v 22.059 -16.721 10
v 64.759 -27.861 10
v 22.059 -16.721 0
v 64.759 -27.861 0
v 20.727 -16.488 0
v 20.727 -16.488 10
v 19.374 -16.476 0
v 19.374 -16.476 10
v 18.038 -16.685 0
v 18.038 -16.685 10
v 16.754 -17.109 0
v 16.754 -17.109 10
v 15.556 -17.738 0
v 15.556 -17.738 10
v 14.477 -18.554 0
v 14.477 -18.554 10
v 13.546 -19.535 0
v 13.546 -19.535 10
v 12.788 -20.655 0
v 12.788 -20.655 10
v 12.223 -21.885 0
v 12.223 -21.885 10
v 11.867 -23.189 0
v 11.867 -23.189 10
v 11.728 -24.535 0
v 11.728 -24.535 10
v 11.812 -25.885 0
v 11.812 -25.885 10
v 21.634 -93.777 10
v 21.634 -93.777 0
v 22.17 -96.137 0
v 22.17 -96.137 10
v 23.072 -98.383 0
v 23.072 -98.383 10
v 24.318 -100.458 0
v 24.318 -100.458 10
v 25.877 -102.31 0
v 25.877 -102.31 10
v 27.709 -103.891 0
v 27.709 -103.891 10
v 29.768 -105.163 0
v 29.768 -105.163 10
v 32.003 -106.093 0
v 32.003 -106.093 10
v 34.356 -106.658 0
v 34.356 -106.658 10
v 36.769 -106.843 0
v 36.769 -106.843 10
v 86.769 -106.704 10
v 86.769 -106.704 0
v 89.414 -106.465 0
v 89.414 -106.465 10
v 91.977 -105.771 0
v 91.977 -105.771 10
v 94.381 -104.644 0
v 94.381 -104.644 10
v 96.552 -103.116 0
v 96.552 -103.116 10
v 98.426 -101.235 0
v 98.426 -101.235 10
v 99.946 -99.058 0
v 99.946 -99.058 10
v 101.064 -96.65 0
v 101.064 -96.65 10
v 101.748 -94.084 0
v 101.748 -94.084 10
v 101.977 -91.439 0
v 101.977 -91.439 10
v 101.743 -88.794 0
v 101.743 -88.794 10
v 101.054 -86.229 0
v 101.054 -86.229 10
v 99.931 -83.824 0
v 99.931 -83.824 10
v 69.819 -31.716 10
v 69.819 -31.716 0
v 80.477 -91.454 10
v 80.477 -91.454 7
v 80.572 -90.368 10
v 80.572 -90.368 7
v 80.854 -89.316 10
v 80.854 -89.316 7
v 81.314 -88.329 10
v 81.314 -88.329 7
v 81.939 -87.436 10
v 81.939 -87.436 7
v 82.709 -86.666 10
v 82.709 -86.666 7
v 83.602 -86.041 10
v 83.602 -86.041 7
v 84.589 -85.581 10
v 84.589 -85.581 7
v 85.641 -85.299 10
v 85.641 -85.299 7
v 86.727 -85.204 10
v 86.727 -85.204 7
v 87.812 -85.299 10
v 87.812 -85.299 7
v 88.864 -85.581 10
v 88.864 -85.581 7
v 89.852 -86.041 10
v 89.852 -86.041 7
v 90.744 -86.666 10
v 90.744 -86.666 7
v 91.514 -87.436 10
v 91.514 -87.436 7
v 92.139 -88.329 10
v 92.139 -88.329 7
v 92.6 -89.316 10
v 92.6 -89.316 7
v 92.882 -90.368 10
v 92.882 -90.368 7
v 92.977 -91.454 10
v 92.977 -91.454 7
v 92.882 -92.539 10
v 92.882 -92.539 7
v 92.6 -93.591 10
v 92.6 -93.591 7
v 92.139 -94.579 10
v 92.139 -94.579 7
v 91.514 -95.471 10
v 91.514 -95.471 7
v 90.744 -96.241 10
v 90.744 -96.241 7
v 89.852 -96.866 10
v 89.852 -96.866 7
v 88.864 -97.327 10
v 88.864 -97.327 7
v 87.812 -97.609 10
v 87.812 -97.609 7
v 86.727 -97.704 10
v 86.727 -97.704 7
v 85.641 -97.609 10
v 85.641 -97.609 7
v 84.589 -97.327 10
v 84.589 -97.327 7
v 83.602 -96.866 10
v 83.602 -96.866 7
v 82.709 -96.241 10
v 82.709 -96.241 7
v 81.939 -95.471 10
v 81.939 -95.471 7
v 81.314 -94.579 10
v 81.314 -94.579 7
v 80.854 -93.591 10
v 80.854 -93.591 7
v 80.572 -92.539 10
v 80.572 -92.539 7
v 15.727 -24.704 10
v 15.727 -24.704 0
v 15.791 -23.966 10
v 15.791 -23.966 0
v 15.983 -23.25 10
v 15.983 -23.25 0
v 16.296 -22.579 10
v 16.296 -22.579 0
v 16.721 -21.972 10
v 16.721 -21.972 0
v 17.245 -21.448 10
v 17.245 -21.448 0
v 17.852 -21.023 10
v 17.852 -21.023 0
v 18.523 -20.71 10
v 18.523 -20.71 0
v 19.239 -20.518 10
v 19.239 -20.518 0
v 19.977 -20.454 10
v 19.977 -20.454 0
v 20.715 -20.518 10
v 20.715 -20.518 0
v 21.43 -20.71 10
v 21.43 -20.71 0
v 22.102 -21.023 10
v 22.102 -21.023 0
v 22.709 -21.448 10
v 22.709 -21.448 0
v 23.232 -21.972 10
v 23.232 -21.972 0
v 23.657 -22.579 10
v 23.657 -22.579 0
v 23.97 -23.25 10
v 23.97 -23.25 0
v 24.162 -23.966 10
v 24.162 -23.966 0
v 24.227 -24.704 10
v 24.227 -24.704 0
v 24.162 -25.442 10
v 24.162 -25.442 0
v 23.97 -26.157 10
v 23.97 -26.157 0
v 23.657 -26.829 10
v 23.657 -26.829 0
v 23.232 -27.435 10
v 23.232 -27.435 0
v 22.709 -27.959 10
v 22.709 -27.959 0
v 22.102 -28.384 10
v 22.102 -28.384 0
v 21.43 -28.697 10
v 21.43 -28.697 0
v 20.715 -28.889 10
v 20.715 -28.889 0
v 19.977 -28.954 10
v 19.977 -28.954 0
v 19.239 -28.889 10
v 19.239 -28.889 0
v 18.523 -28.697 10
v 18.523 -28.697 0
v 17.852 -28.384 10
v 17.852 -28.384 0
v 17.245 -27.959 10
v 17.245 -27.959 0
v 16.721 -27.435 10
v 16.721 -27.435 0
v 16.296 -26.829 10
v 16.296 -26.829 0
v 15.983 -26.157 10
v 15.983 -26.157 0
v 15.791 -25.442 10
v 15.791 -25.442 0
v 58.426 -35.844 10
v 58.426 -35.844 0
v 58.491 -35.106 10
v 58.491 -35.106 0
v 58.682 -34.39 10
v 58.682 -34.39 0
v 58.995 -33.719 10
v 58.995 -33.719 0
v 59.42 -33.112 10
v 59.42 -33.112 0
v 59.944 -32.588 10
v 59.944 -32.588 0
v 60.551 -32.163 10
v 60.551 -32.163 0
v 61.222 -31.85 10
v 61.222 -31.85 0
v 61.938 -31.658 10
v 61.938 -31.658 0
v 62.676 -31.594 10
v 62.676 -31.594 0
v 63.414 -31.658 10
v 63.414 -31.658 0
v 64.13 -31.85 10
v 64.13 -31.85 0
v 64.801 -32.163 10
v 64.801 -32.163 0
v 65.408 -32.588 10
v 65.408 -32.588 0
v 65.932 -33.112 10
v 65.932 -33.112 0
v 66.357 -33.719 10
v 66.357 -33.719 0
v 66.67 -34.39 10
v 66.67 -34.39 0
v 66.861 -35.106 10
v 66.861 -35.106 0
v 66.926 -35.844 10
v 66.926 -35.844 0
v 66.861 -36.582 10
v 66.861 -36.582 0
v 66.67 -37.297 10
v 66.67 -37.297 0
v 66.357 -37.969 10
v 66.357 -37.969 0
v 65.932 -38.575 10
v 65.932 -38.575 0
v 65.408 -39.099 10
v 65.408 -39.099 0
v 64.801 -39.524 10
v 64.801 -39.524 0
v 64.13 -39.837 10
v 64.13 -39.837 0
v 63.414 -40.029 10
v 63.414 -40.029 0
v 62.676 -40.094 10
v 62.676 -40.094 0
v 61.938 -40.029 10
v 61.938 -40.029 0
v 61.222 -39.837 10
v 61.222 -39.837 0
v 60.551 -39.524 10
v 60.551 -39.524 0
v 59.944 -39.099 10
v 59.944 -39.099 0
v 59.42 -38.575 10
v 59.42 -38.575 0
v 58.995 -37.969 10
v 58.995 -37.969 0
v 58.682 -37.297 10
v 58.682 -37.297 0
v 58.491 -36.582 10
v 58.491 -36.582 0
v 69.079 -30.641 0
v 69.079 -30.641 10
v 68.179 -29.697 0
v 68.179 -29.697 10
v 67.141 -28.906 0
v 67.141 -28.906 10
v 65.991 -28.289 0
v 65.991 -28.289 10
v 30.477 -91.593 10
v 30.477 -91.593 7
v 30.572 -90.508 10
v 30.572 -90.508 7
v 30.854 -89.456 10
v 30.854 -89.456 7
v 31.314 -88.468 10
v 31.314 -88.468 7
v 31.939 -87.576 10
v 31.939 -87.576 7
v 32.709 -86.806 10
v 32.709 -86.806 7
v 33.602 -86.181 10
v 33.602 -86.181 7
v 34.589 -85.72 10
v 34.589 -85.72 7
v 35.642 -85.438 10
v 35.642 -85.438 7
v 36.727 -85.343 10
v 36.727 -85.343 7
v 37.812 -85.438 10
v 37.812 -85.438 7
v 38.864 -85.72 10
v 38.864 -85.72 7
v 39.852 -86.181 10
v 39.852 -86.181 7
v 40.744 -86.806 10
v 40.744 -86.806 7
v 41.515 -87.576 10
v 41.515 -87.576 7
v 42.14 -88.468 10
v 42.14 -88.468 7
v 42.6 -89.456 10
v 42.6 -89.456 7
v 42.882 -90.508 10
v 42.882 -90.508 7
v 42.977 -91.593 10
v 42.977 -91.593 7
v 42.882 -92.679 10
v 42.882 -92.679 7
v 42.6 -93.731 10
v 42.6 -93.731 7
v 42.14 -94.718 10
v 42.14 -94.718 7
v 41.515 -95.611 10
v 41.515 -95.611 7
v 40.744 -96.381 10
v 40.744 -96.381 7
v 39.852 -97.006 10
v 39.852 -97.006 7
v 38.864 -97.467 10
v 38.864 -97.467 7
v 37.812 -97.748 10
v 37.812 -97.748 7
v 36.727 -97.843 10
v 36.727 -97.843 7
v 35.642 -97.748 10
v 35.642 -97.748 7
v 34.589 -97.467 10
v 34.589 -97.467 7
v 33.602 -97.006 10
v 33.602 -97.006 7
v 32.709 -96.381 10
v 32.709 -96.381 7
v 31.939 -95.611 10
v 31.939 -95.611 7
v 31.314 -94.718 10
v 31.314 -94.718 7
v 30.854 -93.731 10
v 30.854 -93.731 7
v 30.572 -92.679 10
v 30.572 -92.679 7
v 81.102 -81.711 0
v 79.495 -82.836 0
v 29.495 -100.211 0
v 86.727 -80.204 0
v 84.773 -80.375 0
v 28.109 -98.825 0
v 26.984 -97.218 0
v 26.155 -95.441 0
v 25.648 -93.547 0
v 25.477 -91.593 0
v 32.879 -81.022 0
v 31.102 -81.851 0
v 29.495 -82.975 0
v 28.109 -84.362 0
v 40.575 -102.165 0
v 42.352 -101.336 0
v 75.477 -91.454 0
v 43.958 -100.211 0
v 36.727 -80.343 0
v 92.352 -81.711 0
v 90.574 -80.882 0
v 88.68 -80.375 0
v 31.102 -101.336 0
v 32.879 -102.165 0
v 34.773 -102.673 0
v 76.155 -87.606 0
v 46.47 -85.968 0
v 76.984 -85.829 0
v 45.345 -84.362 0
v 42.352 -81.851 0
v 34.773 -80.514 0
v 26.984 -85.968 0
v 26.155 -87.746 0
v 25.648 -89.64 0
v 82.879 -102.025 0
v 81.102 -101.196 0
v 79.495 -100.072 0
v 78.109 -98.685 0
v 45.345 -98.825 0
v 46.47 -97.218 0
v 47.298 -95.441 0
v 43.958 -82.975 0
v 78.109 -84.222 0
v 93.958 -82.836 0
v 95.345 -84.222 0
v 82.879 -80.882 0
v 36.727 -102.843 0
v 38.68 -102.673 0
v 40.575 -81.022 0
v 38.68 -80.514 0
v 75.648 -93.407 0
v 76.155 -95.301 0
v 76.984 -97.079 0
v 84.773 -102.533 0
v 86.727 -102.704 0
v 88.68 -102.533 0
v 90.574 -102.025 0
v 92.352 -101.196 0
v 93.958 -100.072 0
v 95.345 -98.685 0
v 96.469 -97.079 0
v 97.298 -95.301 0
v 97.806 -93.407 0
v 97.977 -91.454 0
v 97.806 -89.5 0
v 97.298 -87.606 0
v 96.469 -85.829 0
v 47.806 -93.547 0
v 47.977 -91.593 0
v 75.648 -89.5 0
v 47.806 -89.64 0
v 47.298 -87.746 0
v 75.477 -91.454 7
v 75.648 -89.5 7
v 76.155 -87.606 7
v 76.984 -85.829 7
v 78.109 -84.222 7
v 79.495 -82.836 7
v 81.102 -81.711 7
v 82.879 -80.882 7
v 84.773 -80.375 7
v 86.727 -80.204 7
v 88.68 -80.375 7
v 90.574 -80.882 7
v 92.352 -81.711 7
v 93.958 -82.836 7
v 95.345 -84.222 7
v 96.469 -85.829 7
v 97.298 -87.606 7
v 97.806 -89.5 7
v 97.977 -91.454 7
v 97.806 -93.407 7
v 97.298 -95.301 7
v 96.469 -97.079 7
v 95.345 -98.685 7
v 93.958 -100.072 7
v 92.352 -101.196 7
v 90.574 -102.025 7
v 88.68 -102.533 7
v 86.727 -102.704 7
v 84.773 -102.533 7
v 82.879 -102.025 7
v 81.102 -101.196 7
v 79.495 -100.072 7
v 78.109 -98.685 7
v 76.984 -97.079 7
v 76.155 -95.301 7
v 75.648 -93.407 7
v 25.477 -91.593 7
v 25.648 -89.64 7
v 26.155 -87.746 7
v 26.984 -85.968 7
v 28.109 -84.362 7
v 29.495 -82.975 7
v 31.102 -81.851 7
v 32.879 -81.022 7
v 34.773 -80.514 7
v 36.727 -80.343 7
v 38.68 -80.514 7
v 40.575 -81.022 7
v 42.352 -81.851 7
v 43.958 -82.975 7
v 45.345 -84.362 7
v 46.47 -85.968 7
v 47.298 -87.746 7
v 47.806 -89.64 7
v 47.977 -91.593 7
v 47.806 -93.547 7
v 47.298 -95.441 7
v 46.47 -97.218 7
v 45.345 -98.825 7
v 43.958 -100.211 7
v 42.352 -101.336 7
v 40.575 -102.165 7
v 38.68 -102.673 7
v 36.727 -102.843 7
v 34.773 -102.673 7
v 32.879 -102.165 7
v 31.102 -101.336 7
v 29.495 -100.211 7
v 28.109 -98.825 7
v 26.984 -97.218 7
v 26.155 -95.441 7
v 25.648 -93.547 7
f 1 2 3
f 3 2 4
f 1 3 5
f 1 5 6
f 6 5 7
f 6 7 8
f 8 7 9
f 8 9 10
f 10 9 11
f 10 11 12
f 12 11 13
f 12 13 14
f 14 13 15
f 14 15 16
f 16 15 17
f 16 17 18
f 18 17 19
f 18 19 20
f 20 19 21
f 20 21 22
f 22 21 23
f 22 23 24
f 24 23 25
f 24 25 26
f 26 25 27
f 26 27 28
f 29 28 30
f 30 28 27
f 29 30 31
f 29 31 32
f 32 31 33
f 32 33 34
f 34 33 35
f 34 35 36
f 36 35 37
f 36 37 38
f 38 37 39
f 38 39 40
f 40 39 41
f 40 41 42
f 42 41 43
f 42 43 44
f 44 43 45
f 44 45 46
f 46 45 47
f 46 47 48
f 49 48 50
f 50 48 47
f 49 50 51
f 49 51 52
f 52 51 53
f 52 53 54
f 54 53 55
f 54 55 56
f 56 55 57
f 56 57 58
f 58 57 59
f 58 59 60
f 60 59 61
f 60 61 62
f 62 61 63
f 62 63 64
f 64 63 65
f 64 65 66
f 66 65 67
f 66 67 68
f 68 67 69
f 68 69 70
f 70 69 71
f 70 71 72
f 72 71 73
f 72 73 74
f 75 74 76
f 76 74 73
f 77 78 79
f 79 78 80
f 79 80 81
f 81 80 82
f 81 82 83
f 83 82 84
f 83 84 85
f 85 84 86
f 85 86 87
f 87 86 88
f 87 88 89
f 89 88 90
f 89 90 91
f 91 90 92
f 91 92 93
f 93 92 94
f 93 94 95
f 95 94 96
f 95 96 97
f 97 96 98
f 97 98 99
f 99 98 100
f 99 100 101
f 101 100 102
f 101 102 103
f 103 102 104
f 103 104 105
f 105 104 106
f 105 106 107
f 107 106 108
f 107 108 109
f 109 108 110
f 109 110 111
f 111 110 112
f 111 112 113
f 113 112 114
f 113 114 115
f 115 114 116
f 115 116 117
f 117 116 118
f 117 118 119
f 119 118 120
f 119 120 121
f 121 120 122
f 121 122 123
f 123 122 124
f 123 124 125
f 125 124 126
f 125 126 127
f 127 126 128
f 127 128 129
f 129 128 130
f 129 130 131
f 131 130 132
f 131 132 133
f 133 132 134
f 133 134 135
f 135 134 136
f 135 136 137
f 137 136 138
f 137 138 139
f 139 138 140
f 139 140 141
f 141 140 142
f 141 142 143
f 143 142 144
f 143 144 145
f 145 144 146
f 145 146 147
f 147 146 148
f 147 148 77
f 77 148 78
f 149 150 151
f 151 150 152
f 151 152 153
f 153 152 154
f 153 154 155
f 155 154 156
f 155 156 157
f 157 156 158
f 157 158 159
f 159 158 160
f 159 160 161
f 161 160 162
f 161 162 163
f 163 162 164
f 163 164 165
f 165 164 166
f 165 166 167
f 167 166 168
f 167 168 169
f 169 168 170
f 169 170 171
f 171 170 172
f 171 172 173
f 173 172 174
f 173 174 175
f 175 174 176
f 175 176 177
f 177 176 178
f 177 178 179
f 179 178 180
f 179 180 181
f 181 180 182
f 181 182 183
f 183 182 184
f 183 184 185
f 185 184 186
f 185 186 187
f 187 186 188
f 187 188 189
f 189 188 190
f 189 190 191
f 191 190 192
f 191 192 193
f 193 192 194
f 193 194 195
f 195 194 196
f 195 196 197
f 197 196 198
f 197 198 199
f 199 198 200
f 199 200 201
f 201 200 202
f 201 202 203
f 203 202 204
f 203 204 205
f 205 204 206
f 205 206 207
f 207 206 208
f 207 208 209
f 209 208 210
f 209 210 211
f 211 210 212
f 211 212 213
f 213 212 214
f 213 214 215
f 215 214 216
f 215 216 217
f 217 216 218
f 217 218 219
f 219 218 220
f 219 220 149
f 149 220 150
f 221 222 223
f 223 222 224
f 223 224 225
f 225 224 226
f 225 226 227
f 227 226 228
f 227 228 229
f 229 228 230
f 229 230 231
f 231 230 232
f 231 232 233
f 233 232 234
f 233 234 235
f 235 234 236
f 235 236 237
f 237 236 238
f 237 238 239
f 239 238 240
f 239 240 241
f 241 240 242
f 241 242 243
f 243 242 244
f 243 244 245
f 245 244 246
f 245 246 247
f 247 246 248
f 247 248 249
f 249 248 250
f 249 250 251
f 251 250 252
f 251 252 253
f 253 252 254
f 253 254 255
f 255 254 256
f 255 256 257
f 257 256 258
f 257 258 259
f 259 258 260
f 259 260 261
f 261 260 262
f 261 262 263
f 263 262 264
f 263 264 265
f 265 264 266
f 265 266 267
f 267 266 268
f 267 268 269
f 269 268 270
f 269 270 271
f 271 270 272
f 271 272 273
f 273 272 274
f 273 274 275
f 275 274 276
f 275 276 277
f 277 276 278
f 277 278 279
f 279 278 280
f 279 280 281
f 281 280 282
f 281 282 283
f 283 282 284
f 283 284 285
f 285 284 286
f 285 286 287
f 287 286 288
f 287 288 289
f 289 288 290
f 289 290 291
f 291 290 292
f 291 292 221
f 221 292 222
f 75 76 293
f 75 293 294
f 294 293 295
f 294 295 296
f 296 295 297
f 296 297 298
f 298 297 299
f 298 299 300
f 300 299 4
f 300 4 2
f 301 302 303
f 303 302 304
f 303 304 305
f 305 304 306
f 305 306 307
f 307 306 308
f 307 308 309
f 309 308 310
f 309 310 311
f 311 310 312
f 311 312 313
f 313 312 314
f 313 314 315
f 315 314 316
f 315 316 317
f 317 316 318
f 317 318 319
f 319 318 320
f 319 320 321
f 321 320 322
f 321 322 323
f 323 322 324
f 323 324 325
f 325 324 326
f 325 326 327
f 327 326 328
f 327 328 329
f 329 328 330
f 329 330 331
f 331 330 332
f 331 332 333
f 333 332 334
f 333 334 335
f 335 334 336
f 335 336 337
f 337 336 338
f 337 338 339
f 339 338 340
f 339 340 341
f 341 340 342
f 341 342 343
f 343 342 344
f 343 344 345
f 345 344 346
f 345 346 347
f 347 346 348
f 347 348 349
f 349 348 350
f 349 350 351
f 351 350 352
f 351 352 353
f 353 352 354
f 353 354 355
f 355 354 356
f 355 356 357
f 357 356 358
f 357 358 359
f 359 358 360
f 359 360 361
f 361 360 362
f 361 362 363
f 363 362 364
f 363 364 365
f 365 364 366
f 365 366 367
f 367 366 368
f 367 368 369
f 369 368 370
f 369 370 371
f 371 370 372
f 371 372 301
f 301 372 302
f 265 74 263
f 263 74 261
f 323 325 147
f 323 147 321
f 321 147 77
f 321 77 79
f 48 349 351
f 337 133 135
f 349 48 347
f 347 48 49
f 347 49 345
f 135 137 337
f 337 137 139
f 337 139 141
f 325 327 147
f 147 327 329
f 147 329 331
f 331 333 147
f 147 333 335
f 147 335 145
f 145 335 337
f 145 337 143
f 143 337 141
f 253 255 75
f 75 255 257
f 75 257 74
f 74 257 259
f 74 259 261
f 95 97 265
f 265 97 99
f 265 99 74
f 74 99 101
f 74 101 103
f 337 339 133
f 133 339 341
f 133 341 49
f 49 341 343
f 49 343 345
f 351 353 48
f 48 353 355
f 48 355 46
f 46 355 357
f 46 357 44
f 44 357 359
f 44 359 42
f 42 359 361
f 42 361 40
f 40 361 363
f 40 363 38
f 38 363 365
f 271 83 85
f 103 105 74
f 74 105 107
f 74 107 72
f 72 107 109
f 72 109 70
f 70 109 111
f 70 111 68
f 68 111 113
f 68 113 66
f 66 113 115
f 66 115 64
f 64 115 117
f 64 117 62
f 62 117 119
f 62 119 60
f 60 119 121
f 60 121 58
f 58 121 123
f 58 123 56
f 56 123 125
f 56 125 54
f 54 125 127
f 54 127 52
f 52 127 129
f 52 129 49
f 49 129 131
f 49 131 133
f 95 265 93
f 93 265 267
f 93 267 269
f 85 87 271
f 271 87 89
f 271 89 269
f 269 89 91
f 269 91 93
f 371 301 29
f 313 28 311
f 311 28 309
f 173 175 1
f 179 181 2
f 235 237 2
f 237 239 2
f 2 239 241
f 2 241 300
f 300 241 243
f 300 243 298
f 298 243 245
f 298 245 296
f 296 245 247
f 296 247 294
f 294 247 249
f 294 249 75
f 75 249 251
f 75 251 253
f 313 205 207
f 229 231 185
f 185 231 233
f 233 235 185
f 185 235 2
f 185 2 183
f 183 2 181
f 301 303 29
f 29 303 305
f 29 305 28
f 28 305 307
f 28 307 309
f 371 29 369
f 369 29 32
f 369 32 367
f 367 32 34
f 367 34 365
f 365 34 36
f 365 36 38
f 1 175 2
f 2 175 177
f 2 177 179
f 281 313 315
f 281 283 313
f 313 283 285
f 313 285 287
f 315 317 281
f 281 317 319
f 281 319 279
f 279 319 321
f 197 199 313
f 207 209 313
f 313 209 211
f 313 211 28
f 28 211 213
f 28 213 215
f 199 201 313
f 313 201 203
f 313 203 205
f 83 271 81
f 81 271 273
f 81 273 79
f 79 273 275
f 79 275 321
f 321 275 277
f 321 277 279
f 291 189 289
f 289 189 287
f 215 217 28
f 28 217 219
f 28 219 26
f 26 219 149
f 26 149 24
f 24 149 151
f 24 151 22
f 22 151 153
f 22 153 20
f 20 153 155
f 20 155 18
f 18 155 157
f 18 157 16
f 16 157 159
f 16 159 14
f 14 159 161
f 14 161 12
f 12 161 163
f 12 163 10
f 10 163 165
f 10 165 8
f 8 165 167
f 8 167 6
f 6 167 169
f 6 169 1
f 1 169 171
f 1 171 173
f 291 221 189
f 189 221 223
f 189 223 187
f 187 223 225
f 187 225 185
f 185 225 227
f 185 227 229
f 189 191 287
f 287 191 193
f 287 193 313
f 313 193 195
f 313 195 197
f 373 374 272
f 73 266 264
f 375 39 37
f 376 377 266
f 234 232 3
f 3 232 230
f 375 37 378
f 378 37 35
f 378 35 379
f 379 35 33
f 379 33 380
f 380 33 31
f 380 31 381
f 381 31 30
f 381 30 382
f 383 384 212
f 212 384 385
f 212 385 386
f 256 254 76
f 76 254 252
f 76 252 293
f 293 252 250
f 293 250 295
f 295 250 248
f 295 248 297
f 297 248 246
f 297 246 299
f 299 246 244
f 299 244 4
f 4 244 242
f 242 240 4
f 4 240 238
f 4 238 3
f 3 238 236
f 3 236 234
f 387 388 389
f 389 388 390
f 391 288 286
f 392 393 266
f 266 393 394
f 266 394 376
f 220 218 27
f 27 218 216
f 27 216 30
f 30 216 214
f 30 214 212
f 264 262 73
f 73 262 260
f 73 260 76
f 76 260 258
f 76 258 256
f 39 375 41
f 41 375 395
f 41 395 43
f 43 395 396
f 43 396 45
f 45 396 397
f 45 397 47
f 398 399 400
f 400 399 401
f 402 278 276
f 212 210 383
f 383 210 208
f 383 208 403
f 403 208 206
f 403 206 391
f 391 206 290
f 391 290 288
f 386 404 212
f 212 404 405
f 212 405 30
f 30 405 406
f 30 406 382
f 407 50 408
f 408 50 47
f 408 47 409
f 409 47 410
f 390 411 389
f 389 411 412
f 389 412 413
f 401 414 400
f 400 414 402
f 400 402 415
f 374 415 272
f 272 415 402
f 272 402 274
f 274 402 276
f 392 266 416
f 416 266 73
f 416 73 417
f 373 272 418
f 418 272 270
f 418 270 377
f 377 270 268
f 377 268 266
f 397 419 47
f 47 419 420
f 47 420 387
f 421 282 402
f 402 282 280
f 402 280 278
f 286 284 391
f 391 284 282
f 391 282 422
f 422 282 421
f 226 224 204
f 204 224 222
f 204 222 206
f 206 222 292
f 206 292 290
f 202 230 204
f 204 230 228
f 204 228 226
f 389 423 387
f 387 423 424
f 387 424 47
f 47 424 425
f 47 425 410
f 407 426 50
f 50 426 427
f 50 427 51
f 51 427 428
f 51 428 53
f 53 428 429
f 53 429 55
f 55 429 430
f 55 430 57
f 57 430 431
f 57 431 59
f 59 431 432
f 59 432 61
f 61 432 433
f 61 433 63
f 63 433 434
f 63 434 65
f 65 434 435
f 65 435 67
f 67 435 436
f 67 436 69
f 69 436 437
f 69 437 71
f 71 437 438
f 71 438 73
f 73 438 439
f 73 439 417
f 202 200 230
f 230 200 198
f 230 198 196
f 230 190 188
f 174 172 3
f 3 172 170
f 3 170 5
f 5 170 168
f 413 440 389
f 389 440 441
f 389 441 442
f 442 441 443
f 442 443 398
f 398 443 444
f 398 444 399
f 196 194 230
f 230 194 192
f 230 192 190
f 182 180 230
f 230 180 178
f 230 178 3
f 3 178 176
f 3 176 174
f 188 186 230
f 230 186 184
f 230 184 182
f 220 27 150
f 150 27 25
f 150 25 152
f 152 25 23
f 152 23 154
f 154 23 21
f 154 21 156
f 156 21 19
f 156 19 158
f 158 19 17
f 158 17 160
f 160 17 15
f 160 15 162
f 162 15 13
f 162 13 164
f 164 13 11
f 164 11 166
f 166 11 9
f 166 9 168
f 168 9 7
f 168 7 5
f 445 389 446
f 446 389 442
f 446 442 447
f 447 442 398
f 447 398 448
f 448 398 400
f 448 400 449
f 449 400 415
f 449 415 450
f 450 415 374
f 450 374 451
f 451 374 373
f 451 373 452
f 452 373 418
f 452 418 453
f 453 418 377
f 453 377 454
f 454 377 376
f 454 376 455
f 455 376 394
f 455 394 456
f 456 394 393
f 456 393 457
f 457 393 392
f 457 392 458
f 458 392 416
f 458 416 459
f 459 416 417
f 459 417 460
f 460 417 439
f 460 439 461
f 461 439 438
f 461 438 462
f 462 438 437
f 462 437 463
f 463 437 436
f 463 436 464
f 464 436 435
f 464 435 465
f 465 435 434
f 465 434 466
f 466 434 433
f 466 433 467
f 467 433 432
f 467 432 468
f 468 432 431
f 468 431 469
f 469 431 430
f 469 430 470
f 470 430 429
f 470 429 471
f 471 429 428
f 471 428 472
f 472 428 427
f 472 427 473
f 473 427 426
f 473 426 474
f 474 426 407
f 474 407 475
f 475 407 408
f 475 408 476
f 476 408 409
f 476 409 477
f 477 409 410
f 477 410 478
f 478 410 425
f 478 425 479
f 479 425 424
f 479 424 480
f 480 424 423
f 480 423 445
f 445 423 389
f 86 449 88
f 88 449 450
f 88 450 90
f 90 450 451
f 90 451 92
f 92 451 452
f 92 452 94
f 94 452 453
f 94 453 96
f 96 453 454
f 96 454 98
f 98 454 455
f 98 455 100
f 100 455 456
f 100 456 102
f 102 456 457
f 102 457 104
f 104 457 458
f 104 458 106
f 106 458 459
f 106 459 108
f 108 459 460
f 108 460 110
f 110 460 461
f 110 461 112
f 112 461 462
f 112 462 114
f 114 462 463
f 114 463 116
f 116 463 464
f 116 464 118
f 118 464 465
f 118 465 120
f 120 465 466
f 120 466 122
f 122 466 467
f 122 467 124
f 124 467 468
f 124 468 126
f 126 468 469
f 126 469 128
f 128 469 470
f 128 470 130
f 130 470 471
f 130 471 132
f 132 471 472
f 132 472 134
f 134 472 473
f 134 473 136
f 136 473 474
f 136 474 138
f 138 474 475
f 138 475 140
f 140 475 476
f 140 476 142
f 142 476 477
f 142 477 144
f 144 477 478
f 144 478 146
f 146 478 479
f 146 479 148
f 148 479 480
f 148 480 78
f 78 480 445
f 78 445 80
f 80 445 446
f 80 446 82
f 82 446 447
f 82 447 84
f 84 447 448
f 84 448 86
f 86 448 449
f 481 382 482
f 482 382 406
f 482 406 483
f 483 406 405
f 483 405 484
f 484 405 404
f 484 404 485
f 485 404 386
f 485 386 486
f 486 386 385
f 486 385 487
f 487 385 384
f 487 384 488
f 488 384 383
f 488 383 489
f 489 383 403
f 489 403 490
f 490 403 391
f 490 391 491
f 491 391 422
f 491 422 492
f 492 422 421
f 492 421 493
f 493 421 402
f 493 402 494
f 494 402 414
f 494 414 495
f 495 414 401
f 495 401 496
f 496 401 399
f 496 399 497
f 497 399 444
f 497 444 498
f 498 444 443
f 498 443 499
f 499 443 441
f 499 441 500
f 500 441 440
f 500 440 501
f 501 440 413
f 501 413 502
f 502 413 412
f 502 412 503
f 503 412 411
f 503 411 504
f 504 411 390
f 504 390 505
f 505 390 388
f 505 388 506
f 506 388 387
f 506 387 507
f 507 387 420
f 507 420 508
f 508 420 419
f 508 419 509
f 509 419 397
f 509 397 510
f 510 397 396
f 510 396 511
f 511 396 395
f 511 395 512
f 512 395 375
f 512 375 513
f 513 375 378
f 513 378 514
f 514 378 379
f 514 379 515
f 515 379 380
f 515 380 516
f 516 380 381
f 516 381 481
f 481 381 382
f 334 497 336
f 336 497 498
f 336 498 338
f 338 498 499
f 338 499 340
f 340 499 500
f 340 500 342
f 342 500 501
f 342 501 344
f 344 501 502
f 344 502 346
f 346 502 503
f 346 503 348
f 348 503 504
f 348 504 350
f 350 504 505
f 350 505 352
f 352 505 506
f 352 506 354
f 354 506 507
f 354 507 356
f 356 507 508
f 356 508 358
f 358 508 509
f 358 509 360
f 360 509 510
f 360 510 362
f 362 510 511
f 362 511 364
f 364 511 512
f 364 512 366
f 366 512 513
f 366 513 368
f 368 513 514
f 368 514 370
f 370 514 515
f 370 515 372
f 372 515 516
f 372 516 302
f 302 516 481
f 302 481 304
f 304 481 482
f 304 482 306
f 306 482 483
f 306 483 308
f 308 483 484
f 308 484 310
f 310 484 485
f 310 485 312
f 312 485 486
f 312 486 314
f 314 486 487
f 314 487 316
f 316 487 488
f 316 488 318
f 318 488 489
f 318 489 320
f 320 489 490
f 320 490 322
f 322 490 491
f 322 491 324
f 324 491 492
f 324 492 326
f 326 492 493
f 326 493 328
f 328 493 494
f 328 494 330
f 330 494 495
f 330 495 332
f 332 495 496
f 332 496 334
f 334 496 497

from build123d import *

# Parameters (mm, degrees)
SKETCH1_R           = 8.25
SKETCH1_R_2         = 4.25
SKETCH1_R_3         = 15.25
SKETCH1_R_4         = 11.25
SKETCH1_R_5         = 6.25
BOSS_EXTRUDE2_DEPTH = 10
SKETCH1_5_R         = 11.25
CUT_EXTRUDE5_DEPTH  = 7


with BuildPart() as part:
    # Sketch1 → Boss-Extrude2 (new body)
    # profile 1 of 7: a face of its own
    with BuildSketch(Plane.XY):
        with BuildLine():
            Line((64.758616135, -27.860720154), (22.059293714, -16.720850027))
            ThreePointArc((22.059293714, -16.720850027), (26.505216378, -19.659807339), (28.226652646, -24.703650675))
            ThreePointArc((28.226652646, -24.703650675), (20.56881743, -32.932371163), (11.81166092, -25.884925461))
            Line((11.81166092, -25.884925461), (21.633984529, -93.776995906))
            ThreePointArc((21.633984529, -93.776995906), (35.63224039, -76.382762218), (51.976848021, -91.593427362))
            ThreePointArc((51.976848021, -91.593427362), (47.525288564, -102.361722577), (36.769479911, -106.843367773))
            Line((36.769479911, -106.843367773), (86.769284535, -106.703591085))
            ThreePointArc((86.769284535, -106.703591085), (73.507639588, -83.849691589), (99.930570224, -83.823509091))
            Line((99.930570224, -83.823509091), (69.819078019, -31.715739289))
            ThreePointArc((69.819078019, -31.715739289), (70.644447296, -33.706712359), (70.925975067, -35.843520802))
            ThreePointArc((70.925975067, -35.843520802), (56.147411334, -40.887364137), (64.758616135, -27.860720154))
        make_face()
    # profile 2 of 7: a face of its own
    with BuildSketch(Plane.XY):
        with Locations((62.675975067, -35.843520802)):
            Circle(SKETCH1_R)
        with Locations((62.675975067, -35.843520802)):
            Circle(SKETCH1_R_2, mode=Mode.SUBTRACT)
    # profile 3 of 7: a face of its own
    with BuildSketch(Plane.XY):
        with Locations((36.726848021, -91.593427362)):
            Circle(SKETCH1_R_3)
        with Locations((36.726848021, -91.593427362)):
            Circle(SKETCH1_R_4, mode=Mode.SUBTRACT)
    # profile 4 of 7: a face of its own
    with BuildSketch(Plane.XY):
        with Locations((86.726652646, -91.453650675)):
            Circle(SKETCH1_R_3)
        with Locations((86.726652646, -91.453650675)):
            Circle(SKETCH1_R_4, mode=Mode.SUBTRACT)
    # profile 5 of 7: a face of its own
    with BuildSketch(Plane.XY):
        with Locations((19.976652646, -24.703650675)):
            Circle(SKETCH1_R)
        with Locations((19.976652646, -24.703650675)):
            Circle(SKETCH1_R_2, mode=Mode.SUBTRACT)
    # profile 6 of 7: a face of its own
    with BuildSketch(Plane.XY):
        with Locations((36.726848021, -91.593427362)):
            Circle(SKETCH1_R_4)
        with Locations((36.726848021, -91.593427362)):
            Circle(SKETCH1_R_5, mode=Mode.SUBTRACT)
    # profile 7 of 7: a face of its own
    with BuildSketch(Plane.XY):
        with Locations((86.726652646, -91.453650675)):
            Circle(SKETCH1_R_4)
        with Locations((86.726652646, -91.453650675)):
            Circle(SKETCH1_R_5, mode=Mode.SUBTRACT)
    extrude(amount=BOSS_EXTRUDE2_DEPTH)

    # Sketch1<5> → Cut-Extrude5 (cut)
    with BuildSketch(Plane.XY):
        with Locations((86.726652646, -91.453650675)):
            Circle(SKETCH1_5_R)
        with Locations((36.726848021, -91.593427362)):
            Circle(SKETCH1_5_R)
    extrude(amount=CUT_EXTRUDE5_DEPTH, mode=Mode.SUBTRACT)


solid = part.part
